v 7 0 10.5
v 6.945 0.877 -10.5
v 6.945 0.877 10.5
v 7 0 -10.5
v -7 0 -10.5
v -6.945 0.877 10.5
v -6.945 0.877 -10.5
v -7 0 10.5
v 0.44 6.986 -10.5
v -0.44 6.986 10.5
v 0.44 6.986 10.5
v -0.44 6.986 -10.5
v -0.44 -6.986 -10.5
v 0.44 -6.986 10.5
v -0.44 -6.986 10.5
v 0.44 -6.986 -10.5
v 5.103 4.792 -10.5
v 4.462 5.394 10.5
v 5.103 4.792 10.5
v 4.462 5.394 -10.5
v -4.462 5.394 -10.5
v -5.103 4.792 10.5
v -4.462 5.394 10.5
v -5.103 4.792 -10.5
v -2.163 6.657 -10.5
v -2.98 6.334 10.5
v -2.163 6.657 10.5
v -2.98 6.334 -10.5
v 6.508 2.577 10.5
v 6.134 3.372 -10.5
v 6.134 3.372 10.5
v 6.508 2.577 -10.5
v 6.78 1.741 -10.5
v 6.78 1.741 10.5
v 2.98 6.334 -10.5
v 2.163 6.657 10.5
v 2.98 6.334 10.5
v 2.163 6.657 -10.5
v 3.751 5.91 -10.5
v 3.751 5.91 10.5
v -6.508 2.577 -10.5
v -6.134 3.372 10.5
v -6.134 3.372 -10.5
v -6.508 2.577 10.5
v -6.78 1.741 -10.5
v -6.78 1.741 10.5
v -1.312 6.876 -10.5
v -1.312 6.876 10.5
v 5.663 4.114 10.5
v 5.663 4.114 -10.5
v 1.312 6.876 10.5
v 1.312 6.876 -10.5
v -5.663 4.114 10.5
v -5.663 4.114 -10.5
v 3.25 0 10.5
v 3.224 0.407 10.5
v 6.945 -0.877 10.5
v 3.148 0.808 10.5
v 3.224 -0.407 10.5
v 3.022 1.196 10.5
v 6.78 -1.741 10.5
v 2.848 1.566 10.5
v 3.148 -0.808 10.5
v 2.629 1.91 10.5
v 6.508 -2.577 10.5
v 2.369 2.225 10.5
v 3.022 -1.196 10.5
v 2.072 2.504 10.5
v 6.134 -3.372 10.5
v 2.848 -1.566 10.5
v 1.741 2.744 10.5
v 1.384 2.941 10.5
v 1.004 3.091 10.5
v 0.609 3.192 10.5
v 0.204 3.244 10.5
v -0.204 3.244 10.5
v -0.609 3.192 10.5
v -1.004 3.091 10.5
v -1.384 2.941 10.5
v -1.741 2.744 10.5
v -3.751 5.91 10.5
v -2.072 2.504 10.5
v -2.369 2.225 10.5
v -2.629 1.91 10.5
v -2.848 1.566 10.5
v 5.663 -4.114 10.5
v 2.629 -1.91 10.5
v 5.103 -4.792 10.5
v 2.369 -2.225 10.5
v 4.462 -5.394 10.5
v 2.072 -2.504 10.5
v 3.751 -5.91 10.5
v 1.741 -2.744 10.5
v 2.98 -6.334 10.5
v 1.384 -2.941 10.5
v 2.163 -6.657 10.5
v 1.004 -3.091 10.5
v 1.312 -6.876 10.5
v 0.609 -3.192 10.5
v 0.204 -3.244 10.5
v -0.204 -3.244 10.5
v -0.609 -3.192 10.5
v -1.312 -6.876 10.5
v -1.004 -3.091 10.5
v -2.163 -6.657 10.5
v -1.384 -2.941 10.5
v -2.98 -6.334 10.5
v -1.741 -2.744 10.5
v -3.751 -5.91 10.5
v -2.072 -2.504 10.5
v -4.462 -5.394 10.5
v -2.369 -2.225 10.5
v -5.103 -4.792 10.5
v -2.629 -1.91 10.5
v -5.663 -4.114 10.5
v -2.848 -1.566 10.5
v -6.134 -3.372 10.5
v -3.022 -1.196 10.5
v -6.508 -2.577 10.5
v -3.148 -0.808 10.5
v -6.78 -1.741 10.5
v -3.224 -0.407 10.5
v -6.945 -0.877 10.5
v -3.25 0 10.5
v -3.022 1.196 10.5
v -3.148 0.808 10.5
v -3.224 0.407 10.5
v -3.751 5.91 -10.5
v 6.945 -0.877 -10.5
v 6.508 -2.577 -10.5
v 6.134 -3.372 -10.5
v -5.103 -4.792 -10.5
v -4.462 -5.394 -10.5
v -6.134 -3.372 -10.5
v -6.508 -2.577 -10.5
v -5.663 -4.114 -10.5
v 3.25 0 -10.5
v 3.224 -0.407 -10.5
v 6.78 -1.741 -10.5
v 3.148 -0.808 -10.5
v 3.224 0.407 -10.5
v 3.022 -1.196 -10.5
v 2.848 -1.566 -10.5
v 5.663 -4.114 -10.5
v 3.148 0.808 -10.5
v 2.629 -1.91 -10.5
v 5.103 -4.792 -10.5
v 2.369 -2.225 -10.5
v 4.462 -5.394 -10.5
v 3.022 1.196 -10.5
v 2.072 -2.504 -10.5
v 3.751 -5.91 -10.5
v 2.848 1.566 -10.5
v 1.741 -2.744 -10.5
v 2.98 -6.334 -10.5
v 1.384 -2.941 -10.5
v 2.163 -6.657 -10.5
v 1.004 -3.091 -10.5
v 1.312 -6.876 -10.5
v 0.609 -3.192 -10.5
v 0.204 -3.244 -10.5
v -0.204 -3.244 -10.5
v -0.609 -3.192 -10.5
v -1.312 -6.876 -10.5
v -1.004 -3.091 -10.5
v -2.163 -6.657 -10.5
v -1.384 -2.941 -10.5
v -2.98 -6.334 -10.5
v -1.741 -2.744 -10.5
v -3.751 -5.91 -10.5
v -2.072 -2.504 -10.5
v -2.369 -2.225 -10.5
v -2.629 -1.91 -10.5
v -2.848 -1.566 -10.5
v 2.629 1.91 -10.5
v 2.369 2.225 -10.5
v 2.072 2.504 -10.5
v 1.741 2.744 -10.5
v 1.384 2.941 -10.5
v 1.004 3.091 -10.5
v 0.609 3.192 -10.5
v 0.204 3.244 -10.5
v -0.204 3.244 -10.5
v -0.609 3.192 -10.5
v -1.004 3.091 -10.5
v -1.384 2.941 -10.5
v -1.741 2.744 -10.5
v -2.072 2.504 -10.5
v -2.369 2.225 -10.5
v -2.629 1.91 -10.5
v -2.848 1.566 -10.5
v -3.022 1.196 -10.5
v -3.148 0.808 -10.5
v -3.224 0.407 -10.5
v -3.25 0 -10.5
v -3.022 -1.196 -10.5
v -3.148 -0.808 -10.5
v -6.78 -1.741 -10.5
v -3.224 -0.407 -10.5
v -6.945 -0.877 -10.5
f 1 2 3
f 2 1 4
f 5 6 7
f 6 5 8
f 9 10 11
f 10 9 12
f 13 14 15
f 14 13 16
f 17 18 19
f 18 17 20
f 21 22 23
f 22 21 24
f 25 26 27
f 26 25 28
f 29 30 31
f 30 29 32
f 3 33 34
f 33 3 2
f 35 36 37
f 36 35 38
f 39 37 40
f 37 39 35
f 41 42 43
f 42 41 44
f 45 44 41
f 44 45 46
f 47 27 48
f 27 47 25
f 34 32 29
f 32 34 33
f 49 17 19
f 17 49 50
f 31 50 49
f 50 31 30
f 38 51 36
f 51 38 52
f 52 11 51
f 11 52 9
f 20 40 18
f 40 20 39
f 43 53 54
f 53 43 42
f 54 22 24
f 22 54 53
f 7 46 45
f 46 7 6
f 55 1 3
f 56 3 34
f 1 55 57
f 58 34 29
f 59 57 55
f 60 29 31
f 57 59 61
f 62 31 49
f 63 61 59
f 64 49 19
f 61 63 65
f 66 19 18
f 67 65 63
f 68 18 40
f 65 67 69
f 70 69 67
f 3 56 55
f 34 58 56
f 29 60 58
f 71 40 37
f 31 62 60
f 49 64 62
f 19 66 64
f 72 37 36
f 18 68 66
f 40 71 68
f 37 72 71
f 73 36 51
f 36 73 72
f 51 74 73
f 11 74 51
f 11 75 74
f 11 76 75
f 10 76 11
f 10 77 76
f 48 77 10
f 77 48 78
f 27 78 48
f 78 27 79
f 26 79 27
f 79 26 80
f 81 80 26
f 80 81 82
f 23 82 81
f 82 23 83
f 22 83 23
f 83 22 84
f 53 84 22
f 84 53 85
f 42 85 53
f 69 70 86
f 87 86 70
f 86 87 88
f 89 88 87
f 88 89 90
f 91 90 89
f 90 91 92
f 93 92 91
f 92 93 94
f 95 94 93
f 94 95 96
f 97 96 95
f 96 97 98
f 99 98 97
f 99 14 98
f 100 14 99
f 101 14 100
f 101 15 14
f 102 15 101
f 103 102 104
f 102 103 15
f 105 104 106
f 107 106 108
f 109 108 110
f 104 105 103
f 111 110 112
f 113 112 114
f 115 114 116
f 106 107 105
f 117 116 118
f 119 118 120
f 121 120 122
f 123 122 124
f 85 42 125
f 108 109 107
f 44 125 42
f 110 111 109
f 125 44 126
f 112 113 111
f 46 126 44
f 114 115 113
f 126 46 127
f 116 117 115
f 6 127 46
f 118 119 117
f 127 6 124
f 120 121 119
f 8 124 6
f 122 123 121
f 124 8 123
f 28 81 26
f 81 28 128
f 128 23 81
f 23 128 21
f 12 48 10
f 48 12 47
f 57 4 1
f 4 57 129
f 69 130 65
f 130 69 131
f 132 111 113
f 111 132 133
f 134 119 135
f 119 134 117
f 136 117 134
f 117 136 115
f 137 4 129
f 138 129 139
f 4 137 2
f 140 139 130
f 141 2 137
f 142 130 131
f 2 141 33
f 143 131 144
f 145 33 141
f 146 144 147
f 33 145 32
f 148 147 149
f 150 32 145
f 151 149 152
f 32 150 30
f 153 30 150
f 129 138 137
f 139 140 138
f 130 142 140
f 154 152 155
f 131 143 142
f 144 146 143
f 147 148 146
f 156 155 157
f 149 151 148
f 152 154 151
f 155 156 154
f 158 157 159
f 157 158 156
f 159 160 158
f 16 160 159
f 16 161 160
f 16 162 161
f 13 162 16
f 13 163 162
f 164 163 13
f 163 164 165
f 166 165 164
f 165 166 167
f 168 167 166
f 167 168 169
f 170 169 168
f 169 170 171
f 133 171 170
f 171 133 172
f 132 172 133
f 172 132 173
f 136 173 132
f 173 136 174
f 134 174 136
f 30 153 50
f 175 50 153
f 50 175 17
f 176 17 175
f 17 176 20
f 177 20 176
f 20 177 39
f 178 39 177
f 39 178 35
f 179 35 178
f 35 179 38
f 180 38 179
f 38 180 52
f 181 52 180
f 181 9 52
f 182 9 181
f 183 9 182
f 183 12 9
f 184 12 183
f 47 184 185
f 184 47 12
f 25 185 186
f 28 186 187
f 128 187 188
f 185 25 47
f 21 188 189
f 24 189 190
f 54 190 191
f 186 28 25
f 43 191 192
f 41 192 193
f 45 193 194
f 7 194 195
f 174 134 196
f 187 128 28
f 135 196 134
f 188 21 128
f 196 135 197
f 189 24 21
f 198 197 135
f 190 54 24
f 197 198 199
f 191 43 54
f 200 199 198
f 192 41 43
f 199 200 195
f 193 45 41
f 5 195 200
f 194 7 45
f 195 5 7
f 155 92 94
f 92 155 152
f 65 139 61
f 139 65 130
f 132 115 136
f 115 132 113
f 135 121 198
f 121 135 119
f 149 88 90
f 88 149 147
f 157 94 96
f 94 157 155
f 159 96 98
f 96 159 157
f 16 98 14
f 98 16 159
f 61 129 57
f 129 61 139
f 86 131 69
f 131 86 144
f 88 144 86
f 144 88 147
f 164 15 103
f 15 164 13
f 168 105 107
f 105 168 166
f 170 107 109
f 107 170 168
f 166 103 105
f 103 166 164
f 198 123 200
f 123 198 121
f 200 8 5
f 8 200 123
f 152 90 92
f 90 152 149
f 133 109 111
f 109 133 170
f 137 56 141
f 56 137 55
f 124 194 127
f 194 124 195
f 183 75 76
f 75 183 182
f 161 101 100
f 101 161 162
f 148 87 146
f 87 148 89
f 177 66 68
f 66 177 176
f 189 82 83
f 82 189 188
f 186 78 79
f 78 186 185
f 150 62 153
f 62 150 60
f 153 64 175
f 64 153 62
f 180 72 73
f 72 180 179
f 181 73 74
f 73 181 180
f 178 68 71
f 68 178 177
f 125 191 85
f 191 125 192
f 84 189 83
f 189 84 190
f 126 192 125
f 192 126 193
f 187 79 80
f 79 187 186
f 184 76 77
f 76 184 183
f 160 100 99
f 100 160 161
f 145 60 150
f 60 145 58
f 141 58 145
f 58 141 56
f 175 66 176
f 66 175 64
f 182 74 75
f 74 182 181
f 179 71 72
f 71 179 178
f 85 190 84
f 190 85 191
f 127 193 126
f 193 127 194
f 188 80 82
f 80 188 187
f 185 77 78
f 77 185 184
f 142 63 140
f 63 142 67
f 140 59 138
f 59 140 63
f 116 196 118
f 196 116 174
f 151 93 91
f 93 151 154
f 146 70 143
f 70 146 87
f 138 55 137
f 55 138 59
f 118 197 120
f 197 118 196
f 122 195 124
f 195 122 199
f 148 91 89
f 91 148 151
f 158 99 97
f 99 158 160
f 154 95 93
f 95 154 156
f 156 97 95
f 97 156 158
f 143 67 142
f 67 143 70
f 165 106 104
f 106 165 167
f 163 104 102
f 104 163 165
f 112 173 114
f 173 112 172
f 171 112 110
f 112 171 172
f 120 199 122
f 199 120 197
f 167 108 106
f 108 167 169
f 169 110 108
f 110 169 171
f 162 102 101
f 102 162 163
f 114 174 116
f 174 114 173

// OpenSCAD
$fn = 50;


difference() {
	union() {
		translate(v = [0, 0, -10.5000000000]) {
			cylinder(h = 21, r = 7.0000000000);
		}
	}
	union() {
		translate(v = [0, 0, -100.0000000000]) {
			cylinder(h = 200, r = 3.2500000000);
		}
	}
}
